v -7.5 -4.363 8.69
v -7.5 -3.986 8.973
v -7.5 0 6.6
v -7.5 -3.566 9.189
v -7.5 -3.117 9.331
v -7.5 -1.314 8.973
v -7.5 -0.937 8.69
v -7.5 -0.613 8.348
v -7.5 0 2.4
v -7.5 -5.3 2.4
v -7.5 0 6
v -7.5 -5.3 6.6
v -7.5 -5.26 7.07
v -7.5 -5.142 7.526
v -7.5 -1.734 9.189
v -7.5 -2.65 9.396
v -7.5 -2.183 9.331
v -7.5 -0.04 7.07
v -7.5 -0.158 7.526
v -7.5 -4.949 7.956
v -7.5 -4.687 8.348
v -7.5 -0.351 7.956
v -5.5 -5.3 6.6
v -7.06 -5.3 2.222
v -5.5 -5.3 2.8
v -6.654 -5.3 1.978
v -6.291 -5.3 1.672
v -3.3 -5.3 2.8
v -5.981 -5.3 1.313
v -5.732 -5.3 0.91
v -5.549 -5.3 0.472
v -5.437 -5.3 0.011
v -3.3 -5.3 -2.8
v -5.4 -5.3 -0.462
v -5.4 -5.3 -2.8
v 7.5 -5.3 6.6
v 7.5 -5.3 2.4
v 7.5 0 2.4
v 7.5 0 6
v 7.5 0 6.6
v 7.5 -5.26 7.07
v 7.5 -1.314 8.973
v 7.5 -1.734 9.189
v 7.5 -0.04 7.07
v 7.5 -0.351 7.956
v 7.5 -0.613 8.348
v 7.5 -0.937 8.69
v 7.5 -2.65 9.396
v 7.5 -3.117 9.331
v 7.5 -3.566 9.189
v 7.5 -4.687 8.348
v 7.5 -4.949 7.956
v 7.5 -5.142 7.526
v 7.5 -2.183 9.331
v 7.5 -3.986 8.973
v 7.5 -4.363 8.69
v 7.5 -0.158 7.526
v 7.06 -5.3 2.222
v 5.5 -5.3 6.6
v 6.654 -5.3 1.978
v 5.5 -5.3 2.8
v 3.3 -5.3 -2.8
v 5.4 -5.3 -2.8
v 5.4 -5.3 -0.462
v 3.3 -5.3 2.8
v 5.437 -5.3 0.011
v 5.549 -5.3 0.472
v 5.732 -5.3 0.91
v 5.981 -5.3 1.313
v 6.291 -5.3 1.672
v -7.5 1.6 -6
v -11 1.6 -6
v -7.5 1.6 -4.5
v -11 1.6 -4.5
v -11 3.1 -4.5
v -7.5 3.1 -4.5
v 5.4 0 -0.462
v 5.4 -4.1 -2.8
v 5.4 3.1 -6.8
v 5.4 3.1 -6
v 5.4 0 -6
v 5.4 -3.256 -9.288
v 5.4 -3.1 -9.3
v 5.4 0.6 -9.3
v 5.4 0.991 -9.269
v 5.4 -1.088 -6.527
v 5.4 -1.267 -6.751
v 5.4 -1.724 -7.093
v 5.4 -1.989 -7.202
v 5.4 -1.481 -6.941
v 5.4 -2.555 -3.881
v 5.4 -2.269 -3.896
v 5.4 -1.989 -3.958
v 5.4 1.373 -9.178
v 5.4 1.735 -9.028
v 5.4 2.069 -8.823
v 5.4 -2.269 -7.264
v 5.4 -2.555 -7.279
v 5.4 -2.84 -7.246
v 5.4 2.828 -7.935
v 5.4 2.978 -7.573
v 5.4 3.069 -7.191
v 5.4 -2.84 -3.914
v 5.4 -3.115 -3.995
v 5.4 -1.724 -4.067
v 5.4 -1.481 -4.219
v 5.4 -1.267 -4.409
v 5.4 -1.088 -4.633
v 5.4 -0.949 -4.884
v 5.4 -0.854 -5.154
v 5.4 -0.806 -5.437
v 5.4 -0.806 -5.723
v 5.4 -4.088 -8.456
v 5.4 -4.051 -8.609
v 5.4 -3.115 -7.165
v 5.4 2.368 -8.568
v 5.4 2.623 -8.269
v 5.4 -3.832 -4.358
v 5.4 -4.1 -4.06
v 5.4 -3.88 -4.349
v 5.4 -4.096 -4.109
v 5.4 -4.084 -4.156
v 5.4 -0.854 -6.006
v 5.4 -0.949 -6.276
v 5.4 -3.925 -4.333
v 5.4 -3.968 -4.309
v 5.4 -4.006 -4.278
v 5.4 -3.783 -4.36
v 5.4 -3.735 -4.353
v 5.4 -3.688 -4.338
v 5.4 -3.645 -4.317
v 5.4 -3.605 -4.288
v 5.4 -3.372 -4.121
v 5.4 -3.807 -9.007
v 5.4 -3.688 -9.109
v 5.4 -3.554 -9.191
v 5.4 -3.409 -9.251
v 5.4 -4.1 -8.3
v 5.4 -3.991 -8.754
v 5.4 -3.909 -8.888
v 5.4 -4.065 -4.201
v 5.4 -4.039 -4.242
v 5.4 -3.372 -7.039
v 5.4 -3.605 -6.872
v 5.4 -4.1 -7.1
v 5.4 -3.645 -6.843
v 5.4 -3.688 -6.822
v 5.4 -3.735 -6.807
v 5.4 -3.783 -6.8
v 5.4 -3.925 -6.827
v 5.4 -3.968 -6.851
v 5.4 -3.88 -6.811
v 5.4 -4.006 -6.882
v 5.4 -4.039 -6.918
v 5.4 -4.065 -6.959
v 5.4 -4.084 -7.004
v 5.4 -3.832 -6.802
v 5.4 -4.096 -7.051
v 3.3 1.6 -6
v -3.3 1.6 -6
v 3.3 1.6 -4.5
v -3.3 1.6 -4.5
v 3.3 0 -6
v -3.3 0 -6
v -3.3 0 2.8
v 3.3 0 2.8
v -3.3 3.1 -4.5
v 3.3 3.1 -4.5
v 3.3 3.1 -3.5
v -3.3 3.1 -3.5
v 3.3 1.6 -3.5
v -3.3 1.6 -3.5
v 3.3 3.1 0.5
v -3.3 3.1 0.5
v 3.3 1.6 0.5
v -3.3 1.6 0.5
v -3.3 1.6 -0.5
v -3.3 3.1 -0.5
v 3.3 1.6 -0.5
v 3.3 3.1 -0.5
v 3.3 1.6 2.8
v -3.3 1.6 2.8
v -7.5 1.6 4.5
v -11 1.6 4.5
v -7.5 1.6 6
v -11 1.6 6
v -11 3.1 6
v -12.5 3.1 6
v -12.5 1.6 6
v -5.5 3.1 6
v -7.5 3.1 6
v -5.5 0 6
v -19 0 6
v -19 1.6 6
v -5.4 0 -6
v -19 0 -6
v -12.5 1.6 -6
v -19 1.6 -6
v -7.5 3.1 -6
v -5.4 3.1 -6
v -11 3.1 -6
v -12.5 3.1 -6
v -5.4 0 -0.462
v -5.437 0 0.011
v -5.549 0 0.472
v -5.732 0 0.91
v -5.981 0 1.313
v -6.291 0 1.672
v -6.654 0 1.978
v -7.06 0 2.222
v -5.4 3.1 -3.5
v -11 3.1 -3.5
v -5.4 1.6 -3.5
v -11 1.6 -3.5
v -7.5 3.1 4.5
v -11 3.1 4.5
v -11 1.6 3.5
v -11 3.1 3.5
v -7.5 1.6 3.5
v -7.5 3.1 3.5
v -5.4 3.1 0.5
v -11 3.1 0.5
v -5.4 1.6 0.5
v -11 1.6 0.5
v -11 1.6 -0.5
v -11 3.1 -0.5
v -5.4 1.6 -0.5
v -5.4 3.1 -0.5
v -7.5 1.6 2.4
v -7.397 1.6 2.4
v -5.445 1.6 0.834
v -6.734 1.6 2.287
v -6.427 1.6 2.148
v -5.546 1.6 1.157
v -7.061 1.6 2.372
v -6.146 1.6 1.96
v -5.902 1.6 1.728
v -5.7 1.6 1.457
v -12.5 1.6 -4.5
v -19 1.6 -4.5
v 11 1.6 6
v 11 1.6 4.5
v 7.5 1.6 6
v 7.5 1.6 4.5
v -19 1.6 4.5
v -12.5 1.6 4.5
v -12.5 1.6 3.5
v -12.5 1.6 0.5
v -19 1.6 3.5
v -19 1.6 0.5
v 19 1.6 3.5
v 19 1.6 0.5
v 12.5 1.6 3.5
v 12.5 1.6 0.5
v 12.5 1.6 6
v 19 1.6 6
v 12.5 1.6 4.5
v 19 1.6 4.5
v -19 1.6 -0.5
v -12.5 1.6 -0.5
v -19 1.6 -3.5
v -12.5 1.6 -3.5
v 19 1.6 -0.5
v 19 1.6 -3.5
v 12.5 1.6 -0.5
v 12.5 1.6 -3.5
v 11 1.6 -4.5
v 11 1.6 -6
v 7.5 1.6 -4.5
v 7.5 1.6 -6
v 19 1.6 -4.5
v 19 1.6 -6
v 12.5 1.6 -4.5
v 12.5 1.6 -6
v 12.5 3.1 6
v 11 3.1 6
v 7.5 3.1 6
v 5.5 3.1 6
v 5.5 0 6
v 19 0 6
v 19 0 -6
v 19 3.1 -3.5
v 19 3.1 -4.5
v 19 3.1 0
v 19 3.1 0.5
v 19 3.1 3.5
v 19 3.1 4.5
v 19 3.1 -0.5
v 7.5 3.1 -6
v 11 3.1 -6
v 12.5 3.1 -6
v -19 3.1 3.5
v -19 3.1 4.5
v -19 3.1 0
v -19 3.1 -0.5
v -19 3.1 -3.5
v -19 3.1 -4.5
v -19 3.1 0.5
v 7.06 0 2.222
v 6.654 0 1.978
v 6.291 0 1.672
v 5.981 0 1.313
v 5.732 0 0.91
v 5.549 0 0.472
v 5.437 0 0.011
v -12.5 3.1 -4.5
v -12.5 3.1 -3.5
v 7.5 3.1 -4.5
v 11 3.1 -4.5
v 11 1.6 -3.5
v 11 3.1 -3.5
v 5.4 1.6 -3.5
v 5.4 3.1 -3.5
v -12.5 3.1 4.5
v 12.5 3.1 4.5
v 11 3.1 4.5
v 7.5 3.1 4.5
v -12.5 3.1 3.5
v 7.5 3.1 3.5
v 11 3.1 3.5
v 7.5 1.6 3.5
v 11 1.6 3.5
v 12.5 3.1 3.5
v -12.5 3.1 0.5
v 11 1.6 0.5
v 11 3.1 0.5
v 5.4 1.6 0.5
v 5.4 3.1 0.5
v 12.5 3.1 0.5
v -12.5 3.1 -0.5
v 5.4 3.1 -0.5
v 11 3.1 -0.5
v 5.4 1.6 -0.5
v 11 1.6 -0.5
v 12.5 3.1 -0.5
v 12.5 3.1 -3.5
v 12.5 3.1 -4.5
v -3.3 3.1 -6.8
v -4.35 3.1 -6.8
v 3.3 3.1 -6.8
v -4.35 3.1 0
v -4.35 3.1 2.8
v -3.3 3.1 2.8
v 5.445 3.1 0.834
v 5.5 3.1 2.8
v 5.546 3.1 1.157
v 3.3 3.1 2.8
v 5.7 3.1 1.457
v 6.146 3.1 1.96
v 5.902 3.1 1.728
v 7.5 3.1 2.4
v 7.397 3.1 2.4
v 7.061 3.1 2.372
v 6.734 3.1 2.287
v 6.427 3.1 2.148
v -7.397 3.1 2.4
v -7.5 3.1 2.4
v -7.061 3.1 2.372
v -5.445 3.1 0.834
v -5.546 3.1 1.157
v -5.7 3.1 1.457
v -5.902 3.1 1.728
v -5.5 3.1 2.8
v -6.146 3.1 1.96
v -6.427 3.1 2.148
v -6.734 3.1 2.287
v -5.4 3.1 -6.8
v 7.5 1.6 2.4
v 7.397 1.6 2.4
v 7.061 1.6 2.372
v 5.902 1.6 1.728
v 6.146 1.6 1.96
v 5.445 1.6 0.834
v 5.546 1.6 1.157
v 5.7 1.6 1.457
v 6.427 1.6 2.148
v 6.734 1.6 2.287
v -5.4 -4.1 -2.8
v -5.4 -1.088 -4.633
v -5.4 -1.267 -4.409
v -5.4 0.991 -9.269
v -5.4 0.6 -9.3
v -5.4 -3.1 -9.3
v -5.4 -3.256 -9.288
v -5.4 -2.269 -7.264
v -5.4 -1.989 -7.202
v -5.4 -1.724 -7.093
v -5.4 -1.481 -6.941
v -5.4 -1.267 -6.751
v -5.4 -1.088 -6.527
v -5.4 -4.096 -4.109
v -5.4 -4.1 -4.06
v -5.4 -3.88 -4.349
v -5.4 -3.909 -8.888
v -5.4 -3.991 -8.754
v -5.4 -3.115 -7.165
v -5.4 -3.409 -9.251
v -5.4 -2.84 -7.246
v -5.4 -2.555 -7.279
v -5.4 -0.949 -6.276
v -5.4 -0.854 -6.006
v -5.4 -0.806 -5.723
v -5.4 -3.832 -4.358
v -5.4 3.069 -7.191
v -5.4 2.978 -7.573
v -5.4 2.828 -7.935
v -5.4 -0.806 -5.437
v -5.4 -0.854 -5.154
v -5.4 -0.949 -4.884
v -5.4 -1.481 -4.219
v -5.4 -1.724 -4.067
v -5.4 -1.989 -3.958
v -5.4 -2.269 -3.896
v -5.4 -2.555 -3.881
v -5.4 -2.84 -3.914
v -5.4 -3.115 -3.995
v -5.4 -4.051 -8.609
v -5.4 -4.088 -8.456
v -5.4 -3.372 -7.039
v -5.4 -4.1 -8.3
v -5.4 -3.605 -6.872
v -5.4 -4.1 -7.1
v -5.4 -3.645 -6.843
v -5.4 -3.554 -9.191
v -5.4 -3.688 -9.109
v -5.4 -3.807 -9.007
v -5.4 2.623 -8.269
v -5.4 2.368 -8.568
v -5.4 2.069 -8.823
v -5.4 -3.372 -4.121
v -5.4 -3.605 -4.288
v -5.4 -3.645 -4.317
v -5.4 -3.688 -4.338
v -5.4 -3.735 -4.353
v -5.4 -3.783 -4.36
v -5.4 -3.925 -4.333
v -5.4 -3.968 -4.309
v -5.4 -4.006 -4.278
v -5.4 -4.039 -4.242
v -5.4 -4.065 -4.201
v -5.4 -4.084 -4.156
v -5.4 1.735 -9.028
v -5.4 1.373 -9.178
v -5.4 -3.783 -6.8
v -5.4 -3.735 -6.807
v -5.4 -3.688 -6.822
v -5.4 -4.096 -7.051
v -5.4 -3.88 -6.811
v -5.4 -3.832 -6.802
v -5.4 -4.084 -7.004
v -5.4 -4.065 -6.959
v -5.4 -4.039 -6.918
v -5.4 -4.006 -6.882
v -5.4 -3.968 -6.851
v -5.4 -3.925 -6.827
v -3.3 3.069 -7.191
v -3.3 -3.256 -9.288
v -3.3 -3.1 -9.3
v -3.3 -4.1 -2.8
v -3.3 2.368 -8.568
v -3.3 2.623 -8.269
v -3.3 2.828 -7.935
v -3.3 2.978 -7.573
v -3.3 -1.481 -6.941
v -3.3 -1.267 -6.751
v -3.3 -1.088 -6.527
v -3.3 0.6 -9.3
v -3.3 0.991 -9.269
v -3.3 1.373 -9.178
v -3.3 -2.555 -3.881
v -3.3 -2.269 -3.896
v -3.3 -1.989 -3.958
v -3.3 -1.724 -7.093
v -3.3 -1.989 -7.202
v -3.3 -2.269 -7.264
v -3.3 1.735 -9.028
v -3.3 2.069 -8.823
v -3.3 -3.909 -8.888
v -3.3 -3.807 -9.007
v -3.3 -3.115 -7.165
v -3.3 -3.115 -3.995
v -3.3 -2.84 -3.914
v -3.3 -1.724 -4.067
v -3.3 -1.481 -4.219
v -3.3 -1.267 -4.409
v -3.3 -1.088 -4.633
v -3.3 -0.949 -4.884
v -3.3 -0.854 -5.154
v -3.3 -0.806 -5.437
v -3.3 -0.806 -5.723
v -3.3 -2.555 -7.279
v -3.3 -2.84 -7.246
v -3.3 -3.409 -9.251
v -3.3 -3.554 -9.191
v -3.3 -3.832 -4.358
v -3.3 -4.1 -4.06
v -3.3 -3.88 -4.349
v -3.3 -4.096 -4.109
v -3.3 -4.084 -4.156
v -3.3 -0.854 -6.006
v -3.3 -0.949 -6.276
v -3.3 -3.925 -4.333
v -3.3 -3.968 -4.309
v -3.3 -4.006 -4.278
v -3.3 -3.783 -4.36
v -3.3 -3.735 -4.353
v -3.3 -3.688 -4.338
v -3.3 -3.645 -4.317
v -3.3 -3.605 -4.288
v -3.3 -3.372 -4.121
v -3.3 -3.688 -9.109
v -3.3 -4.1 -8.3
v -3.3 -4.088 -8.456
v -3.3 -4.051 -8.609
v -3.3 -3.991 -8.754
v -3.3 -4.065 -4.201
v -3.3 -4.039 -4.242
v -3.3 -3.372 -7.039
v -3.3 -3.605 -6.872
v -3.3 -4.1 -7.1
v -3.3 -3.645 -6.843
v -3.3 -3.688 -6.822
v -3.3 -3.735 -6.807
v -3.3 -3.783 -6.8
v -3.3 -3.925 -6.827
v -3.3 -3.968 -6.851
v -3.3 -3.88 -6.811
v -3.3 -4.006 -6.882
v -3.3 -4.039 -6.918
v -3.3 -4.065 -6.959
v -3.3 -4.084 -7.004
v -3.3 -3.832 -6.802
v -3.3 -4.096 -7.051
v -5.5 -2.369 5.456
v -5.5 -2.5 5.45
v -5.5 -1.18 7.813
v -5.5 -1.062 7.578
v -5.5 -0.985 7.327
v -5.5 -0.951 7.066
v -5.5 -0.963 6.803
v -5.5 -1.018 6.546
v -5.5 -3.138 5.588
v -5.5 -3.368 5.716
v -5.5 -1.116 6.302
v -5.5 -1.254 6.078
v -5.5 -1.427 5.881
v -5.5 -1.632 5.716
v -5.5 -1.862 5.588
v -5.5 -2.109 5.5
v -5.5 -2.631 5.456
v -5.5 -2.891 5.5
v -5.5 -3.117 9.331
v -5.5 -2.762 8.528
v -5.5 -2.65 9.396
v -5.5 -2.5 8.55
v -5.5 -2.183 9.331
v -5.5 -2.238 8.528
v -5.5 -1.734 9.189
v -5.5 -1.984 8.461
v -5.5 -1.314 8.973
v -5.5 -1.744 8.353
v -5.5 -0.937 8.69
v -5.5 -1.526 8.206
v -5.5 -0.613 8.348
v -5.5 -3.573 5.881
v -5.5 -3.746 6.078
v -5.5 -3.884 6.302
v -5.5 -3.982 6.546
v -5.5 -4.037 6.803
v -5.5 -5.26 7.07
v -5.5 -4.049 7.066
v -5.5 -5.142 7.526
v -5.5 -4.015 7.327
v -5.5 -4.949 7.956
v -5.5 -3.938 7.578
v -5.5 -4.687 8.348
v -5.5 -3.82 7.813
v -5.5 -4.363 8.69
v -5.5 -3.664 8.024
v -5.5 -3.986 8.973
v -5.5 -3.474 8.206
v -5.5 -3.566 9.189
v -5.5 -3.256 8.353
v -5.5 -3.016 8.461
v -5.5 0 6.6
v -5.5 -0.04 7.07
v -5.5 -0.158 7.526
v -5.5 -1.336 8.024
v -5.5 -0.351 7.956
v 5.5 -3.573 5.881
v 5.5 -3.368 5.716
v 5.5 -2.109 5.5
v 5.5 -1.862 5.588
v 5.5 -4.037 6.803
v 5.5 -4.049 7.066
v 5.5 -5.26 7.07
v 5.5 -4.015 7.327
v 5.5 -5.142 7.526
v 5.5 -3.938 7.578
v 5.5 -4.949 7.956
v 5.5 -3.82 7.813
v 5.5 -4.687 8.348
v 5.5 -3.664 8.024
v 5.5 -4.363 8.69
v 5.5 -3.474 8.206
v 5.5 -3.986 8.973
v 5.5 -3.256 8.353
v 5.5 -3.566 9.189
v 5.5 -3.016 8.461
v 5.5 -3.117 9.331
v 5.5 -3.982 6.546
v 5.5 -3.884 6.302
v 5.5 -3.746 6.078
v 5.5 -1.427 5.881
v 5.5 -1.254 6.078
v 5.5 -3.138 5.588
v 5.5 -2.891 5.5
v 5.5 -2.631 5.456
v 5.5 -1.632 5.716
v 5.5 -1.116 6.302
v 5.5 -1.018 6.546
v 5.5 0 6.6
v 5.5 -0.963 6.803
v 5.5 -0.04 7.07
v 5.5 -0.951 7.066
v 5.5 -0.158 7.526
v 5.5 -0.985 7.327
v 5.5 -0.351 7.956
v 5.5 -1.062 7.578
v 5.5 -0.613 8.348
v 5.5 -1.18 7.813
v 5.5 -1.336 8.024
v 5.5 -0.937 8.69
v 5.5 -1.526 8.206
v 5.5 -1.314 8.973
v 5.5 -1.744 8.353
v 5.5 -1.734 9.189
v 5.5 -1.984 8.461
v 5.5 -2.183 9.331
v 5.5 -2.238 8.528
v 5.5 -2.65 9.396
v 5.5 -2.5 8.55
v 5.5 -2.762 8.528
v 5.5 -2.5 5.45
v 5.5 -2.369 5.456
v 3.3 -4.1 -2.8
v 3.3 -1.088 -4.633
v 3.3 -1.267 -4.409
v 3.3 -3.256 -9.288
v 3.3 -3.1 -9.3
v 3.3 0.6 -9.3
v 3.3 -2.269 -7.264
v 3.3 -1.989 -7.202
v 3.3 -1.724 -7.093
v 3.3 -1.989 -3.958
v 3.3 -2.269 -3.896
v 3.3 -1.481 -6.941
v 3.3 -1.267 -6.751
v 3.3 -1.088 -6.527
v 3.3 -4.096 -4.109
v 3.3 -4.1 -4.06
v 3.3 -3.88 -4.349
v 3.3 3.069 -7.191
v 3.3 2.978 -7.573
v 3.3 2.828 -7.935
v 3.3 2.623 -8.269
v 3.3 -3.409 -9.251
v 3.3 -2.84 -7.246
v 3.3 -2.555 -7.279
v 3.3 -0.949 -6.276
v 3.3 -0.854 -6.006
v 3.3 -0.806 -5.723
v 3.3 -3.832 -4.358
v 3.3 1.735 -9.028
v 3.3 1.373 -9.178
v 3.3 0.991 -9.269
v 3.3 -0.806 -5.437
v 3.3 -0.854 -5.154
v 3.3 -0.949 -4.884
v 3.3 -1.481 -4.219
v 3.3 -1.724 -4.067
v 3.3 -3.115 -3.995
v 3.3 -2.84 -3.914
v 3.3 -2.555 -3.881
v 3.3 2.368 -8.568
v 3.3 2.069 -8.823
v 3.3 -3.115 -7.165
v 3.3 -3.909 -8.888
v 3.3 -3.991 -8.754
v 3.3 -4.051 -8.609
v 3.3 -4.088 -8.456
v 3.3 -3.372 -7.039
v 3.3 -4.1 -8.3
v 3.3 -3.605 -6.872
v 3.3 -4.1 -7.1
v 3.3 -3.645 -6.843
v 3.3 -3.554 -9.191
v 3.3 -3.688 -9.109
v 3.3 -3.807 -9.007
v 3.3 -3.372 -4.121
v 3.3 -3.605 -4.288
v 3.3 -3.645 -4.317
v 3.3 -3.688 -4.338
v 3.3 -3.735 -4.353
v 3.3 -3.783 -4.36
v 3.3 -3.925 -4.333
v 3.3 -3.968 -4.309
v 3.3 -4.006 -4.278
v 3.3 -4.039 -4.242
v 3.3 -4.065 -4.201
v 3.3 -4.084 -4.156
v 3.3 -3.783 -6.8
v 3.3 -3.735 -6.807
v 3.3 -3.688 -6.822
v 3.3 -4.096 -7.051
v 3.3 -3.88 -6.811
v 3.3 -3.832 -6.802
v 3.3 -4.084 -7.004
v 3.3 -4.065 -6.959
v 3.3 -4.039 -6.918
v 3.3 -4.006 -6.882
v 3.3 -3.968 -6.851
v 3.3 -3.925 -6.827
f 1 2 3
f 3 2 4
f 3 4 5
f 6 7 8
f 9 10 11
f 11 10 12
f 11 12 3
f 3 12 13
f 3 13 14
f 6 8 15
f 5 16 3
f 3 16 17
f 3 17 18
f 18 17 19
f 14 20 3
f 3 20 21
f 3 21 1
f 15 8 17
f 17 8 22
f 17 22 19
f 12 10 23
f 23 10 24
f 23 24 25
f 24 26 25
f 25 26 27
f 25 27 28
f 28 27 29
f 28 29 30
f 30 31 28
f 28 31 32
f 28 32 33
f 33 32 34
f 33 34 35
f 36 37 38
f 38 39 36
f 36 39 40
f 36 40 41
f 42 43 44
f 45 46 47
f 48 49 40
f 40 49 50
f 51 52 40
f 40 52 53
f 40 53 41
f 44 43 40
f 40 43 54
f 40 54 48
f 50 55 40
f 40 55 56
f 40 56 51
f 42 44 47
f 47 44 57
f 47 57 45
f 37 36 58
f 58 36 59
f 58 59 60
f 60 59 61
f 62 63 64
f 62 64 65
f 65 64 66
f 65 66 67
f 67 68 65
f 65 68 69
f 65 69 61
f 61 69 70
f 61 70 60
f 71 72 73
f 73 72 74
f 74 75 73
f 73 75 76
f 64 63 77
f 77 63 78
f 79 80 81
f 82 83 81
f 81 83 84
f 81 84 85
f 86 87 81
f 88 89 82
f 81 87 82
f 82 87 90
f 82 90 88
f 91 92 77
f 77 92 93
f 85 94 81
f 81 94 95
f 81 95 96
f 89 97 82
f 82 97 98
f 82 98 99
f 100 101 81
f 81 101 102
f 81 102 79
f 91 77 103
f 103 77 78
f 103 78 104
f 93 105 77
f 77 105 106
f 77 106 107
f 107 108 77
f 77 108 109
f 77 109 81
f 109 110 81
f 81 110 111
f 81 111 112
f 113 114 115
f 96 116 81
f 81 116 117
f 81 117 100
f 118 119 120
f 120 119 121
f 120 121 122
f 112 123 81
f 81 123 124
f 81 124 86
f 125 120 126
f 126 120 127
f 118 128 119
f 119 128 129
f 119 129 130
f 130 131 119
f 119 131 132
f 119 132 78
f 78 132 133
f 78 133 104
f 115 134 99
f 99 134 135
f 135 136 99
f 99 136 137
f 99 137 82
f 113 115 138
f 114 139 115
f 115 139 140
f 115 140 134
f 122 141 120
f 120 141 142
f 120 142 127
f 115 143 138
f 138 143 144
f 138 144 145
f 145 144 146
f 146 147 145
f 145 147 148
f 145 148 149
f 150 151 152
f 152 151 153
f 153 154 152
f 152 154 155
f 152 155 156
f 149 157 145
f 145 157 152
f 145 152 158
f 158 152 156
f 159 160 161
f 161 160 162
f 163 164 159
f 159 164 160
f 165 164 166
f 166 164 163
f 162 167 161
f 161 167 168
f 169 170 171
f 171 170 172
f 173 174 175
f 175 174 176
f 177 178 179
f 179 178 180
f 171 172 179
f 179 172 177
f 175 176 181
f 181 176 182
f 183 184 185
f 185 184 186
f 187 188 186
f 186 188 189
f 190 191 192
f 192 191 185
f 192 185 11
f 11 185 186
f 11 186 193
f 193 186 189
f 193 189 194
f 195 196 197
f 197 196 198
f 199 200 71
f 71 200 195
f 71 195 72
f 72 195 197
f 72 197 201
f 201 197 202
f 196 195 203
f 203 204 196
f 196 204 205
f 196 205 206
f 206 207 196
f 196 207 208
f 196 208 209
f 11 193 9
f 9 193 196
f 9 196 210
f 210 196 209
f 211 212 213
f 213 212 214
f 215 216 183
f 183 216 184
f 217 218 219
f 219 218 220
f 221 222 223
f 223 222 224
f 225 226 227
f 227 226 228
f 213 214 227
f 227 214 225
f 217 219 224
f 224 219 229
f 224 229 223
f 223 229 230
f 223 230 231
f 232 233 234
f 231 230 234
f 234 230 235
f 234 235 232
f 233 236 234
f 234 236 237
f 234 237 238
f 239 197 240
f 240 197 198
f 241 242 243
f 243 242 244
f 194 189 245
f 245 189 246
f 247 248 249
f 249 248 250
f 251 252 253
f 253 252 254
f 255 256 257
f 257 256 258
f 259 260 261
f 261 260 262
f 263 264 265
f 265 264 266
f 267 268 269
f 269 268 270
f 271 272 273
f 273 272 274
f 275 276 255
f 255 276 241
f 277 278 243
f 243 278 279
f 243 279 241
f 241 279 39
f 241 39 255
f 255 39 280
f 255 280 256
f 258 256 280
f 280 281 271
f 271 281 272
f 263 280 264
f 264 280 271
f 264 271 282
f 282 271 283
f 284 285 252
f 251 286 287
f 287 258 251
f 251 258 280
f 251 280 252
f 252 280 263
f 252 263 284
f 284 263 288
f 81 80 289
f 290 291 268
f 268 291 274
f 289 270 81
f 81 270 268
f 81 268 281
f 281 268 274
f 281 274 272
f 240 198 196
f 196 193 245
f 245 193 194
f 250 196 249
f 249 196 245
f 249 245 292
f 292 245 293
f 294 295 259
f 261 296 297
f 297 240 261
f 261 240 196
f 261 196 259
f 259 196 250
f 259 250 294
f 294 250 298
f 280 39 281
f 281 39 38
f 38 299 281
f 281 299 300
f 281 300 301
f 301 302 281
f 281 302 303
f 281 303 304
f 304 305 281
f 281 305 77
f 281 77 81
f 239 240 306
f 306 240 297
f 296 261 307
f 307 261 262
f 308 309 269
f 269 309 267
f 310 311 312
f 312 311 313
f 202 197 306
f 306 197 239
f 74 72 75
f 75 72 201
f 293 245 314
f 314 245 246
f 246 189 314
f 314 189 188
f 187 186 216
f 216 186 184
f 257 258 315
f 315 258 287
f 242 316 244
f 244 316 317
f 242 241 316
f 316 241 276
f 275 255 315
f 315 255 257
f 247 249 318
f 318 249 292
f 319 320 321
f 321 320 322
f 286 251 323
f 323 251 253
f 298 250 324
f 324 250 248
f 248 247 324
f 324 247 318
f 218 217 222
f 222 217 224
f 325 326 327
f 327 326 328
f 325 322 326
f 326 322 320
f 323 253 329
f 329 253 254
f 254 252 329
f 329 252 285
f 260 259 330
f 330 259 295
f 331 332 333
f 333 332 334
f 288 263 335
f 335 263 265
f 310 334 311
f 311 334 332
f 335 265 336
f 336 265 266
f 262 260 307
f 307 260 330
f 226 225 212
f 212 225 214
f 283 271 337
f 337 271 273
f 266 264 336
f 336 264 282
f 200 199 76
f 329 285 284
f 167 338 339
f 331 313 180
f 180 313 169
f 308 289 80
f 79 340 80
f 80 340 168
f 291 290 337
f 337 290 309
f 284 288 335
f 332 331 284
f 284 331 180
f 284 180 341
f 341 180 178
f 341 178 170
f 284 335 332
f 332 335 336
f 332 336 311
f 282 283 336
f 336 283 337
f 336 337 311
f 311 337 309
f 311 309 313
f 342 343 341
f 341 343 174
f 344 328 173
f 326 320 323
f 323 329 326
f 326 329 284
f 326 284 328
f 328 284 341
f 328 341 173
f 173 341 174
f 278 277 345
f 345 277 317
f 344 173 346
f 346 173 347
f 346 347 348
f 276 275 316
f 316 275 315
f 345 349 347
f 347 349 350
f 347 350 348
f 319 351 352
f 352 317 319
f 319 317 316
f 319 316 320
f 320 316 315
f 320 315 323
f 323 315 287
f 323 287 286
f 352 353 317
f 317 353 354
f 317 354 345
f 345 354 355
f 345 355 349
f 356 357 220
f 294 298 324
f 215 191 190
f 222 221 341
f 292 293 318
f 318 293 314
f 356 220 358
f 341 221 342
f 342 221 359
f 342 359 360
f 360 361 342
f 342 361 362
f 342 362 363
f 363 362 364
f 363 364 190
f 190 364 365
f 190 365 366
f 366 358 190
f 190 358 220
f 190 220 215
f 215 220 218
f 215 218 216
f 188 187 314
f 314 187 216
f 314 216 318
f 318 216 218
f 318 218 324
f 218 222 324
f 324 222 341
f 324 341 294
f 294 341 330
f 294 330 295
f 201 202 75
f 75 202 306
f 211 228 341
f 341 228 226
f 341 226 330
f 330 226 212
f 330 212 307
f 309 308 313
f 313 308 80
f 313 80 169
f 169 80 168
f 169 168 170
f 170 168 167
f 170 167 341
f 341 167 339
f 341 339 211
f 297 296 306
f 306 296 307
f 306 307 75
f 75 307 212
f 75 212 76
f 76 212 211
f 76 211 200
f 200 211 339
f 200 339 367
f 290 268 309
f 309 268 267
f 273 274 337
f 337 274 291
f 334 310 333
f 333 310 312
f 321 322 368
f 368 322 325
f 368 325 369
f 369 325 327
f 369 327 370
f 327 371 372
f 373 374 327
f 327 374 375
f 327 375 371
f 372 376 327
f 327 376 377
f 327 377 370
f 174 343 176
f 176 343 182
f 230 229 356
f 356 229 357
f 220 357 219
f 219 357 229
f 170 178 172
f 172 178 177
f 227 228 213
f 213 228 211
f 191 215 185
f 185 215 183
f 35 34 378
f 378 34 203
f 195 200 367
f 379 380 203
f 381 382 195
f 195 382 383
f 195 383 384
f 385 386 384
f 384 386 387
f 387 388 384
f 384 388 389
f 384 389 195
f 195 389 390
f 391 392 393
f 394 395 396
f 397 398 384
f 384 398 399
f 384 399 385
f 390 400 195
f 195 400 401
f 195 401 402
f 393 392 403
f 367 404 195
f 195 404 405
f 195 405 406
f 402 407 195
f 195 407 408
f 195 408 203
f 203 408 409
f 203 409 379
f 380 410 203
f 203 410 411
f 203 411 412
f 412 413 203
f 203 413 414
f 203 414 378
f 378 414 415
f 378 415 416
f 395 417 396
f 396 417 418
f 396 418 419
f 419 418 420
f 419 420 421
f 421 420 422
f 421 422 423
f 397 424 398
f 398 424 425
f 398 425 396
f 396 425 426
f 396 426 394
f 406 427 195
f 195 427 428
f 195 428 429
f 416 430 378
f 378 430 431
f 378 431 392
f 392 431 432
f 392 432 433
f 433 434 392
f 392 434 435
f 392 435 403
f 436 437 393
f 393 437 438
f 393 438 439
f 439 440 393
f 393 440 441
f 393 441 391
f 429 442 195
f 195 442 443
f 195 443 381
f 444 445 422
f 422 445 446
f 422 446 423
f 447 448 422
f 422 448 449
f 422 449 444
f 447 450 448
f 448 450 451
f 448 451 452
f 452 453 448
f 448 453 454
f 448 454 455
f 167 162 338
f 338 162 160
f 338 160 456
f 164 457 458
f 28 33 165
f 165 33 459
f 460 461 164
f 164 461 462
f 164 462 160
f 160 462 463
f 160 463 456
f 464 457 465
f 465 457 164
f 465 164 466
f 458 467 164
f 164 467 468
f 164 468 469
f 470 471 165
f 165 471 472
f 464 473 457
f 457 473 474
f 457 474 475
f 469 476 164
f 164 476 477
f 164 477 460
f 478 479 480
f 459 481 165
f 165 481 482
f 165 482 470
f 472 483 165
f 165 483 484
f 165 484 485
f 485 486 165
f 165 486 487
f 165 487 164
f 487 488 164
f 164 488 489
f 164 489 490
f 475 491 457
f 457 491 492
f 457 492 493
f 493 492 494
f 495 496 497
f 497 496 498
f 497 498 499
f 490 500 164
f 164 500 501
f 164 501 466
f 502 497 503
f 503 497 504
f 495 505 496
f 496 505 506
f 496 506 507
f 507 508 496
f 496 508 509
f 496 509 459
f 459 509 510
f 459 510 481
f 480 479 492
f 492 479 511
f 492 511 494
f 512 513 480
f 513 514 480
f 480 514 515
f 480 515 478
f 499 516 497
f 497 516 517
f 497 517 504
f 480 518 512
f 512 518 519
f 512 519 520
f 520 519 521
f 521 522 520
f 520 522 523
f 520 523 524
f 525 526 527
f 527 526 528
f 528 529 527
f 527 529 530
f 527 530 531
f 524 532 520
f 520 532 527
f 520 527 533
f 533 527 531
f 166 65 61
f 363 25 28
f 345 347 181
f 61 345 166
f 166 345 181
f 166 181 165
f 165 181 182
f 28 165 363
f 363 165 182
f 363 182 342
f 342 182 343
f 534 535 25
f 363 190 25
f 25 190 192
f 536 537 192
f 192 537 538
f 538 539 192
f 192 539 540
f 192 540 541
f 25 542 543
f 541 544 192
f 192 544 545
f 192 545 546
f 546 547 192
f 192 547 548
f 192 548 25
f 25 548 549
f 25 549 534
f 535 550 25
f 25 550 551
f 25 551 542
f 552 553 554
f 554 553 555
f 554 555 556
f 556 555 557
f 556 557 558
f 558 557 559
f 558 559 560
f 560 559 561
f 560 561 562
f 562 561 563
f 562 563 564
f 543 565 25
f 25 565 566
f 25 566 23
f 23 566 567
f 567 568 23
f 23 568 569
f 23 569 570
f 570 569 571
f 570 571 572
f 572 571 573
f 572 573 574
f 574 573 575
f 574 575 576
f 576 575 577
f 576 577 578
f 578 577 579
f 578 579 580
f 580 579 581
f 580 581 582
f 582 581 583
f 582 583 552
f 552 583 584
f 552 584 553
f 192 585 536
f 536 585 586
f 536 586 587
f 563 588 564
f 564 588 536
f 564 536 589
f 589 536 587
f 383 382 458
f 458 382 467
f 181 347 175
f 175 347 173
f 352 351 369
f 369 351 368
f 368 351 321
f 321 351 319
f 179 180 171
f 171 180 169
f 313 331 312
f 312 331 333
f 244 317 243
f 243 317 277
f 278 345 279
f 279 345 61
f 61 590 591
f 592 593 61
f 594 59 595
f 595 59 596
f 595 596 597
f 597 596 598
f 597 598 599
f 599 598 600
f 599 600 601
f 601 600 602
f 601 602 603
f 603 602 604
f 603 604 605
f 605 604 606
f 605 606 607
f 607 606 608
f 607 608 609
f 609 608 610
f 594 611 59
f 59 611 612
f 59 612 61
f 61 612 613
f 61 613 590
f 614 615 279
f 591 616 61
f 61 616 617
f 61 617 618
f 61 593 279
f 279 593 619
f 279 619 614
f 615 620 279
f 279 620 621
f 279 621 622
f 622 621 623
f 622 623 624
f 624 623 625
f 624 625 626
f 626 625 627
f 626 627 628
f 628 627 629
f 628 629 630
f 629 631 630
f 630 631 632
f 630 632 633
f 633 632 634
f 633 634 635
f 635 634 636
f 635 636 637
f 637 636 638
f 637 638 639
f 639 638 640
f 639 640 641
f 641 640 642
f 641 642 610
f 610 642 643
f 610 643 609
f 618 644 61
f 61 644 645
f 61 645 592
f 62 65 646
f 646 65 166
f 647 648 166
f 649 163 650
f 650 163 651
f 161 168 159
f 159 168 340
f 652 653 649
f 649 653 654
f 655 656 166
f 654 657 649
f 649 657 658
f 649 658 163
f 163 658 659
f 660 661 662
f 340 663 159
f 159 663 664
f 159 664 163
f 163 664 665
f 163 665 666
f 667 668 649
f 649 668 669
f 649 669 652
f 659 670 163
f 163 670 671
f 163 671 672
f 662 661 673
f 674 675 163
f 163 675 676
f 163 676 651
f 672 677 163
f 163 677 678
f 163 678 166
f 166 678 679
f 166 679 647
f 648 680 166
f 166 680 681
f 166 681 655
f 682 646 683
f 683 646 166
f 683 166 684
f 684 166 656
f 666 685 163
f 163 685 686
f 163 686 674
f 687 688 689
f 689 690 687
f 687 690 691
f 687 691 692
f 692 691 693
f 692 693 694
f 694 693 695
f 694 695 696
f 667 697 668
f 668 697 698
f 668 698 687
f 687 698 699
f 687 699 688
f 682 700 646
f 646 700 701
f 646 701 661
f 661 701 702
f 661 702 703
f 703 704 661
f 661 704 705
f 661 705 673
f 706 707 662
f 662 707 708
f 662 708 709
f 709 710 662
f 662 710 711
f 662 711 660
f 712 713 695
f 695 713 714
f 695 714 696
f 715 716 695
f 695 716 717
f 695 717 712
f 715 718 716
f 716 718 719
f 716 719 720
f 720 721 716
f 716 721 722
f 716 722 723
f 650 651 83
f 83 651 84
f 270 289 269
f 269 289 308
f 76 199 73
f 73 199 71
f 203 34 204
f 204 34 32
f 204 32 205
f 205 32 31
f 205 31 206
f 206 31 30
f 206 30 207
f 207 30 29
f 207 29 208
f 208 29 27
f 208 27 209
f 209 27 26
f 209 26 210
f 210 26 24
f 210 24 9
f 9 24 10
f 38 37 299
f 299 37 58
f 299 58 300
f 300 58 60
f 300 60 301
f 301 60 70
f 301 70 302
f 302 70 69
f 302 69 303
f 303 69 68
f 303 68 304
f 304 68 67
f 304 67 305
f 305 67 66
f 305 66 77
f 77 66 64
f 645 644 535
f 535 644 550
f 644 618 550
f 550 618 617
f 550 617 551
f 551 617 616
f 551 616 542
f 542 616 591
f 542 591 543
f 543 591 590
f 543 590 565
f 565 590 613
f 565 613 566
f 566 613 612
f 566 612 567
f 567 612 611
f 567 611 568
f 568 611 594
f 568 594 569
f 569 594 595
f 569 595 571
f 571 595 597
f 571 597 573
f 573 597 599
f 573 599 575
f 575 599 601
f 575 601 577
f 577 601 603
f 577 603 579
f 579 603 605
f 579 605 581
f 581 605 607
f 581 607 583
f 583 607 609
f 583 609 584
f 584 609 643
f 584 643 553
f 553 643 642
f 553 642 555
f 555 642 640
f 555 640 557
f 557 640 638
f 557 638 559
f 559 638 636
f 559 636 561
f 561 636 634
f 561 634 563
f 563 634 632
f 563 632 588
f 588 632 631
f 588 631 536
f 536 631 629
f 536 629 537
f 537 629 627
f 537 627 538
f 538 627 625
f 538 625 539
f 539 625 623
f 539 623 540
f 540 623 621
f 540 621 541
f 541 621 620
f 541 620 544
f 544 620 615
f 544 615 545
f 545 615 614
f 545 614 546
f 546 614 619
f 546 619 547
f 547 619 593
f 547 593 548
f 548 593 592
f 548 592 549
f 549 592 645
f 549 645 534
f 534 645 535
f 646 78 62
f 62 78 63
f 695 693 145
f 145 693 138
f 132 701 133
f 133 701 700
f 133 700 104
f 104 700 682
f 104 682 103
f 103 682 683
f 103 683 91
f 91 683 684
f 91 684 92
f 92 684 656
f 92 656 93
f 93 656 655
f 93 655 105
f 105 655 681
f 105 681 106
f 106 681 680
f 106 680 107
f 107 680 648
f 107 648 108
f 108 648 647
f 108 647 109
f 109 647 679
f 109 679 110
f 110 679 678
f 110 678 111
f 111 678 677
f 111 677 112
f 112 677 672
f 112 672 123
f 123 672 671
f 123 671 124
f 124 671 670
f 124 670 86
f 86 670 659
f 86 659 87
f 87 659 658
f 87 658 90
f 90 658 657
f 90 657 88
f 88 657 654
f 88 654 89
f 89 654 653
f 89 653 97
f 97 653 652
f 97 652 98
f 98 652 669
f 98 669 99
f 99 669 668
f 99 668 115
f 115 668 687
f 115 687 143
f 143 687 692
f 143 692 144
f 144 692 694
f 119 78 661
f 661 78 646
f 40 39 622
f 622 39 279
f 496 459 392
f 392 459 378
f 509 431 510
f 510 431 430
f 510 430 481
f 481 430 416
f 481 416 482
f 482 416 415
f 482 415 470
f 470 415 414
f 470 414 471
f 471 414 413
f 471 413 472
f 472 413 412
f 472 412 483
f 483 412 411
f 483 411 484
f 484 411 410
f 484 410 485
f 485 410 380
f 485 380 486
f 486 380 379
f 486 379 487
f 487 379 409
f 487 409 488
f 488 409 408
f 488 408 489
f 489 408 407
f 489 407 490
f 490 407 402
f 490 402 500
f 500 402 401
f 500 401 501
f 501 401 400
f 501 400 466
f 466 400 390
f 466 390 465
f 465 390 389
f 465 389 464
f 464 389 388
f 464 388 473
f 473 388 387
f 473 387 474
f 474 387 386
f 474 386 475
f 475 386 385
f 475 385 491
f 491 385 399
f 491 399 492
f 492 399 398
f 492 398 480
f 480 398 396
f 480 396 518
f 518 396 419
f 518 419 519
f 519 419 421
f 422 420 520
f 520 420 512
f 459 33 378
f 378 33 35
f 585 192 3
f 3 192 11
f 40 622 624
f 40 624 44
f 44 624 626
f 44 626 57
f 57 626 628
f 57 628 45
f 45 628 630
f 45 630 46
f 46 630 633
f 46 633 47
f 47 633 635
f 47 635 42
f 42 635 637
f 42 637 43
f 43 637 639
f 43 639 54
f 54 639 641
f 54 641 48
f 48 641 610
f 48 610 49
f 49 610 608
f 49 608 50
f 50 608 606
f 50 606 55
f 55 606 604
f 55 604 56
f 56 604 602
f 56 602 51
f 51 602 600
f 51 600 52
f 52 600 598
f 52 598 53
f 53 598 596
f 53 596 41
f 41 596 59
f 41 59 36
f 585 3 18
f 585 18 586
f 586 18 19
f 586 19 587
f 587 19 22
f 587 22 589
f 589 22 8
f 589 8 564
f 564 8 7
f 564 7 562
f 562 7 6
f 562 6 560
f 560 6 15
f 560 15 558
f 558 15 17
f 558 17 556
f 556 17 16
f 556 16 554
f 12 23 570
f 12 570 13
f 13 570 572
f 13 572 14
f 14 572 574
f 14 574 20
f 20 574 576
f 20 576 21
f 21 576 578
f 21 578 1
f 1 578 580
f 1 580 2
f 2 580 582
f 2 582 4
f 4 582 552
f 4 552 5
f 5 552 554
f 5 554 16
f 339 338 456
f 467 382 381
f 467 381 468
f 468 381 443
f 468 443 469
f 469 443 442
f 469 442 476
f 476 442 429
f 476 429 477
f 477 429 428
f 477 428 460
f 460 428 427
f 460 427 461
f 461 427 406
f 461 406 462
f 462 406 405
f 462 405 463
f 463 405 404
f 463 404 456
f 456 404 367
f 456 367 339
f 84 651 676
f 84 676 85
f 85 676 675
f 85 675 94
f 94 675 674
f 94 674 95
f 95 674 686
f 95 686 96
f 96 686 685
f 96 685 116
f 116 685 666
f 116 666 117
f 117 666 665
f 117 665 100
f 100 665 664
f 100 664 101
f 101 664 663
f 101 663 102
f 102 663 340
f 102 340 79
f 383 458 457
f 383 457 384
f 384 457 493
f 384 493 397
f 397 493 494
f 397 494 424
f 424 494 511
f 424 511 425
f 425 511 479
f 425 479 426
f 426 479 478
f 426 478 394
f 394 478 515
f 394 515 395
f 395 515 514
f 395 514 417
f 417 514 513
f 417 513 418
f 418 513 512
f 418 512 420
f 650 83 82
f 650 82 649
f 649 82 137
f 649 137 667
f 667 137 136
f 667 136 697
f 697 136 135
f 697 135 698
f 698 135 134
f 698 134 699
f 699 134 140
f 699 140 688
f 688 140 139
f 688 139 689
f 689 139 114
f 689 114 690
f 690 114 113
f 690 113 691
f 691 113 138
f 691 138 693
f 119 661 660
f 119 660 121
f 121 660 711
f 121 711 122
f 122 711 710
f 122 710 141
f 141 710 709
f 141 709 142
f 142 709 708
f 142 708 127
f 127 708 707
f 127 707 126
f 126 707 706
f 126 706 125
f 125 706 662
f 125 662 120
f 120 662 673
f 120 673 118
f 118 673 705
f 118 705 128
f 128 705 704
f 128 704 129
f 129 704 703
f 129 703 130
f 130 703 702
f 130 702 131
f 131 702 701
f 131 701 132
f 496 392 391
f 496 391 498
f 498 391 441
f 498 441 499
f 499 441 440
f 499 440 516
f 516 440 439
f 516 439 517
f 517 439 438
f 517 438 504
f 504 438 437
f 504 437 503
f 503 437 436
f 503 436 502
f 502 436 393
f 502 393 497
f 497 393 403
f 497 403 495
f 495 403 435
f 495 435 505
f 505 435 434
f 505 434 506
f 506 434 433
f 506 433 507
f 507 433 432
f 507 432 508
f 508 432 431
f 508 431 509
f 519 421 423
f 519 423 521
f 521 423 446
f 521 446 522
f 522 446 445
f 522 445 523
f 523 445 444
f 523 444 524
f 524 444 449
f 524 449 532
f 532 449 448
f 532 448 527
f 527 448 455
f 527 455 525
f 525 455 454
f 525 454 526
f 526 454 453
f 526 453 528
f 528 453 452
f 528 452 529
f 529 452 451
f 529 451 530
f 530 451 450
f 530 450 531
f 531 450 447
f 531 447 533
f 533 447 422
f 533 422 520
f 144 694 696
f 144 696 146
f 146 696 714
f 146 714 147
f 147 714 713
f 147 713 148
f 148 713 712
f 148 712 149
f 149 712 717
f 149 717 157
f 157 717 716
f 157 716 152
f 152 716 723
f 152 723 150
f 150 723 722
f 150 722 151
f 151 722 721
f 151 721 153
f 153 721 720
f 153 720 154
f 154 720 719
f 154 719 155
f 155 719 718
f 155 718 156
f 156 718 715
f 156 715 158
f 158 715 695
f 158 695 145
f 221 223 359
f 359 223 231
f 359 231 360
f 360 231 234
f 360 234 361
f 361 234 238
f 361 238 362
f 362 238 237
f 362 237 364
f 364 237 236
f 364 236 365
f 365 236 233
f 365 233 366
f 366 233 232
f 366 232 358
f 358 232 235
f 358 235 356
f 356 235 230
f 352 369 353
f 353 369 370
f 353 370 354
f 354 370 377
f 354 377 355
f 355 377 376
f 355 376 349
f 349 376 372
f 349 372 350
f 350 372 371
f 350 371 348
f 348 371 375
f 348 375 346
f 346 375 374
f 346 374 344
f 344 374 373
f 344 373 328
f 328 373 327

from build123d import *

# Parameters (mm, degrees)
SKETCH_1_W               = 38
SKETCH_1_H               = 12
EXTRUDE_1_DEPTH          = 1.6
EXTRUDE_START            = 1.6
SKETCH_1_3_W             = 38
SKETCH_1_3_H             = 1
SKETCH_1_3_W_2           = 1.5
SKETCH_1_3_H_2           = 12
EXTRUDE_2_DEPTH          = 1.5
EXTRUDE_START_2          = 3.1
EXTRUDE_3_DEPTH          = 8.4
SKETCH_2_4_W             = 2.1
SKETCH_2_4_H             = 1.5
EXTRUDE_5_DEPTH          = 3.1
CUT_EXTRUDE_1_DEPTH      = 22.850629282
FILLET_1_R               = 3
EXTRUDE_4_REACH          = 28.771
SKETCH_3_R               = 1.55
CUT_EXTRUDE_2_DEPTH      = 27.771253239
CUT_EXTRUDE_2_DEPTH_BACK = 27.771253239
SKETCH_3_3_R             = 1.7
SKETCH_3_3_W             = 6.5
SKETCH_3_3_H             = 1.2
SKETCH_3_3_W_2           = 3.4
SKETCH_3_3_H_2           = 3.1
FILLET_2_R               = 2.8
FILLET_3_R               = 2.5
FILLET_4_R               = 1
FILLET_5_R               = 0.3
FILLET_6_R               = 2


with BuildPart() as part:
    # 草图1 → 凸台-拉伸1 (new body)
    with BuildSketch(Plane(origin=(0, 0, 0), x_dir=(1, 0, 0), z_dir=(0, 1, 0))):
        Rectangle(SKETCH_1_W, SKETCH_1_H)
    extrude(amount=EXTRUDE_1_DEPTH)

    # 草图1<3> → 凸台-拉伸2 (add)
    with BuildSketch(Plane(origin=(0, 0, 0), x_dir=(1, 0, 0), z_dir=(0, 1, 0)).offset(EXTRUDE_START)):
        with Locations((0, 4)):
            Rectangle(SKETCH_1_3_W, SKETCH_1_3_H)
        Rectangle(SKETCH_1_3_W, SKETCH_1_3_H)
        with Locations((0, -4)):
            Rectangle(SKETCH_1_3_W, SKETCH_1_3_H)
        with Locations((-11.75, 0)):
            Rectangle(SKETCH_1_3_W_2, SKETCH_1_3_H_2)
        with Locations((11.75, 0)):
            Rectangle(SKETCH_1_3_W_2, SKETCH_1_3_H_2)
    extrude(amount=EXTRUDE_2_DEPTH)

    # 草图2 → 凸台-拉伸3 (add)
    with BuildSketch(Plane(origin=(0, 0, 0), x_dir=(1, 0, 0), z_dir=(0, 1, 0)).offset(EXTRUDE_START_2)):
        Polygon((-3.3, 9.3), (-5.4, 9.3), (-5.4, -2.4), (-7.5, -2.4), (-7.5, -9.4), (-5.5, -9.4), (-5.5, -2.8), (-3.3, -2.8), align=None)
        Polygon((5.4, 9.3), (3.3, 9.3), (3.3, -2.8), (5.5, -2.8), (5.5, -9.4), (7.5, -9.4), (7.5, -2.4), (5.4, -2.4), align=None)
    extrude(amount=-EXTRUDE_3_DEPTH)

    # 草图2<4> → 凸台-拉伸5 (add)
    with BuildSketch(Plane(origin=(0, 0, 0), x_dir=(1, 0, 0), z_dir=(0, 1, 0))):
        with Locations((-6.45, 5.25)):
            Rectangle(SKETCH_2_4_W, SKETCH_2_4_H)
        with Locations((6.45, 5.25)):
            Rectangle(SKETCH_2_4_W, SKETCH_2_4_H)
    extrude(amount=EXTRUDE_5_DEPTH)

    # 草图2<3> → 切除-拉伸1 (cut, through all)
    with BuildSketch(Plane(origin=(0, 0, 0), x_dir=(1, 0, 0), z_dir=(0, 1, 0))):
        Polygon((0, -9.4), (0, -2.8), (-3.3, -2.8), (-5.4, -2.8), (-5.5, -2.8), (-5.5, -9.4), align=None)
        Polygon((3.3, -2.8), (0, -2.8), (0, -9.4), (5.5, -9.4), (5.5, -2.8), (5.4, -2.8), align=None)
    extrude(amount=CUT_EXTRUDE_1_DEPTH, mode=Mode.SUBTRACT)

    # 圆角1
    # the kernel refuses this fillet: 3 mm, written as the material it adds along each edge
    with BuildSketch(Plane(origin=(5.4, 7.154544011, 2.4), x_dir=(1, 0, 0), z_dir=(0, -1, 0))) as fillet_1_piece_1_section:
        with BuildLine():
            CenterArc((3, -2.861817604), FILLET_1_R, 107.457603124, 72.542396876)
            Line((0, -2.861817604), (0, 0))
            Line((0, 0), (2.1, 0))
        make_face()
    fillet_1_piece_1 = extrude(amount=12.454544011, mode=Mode.PRIVATE)
    fillet_1_piece_1 = split(fillet_1_piece_1, bisect_by=Plane(origin=(6.297598678, 1.6, 1.686657362), z_dir=(0, -1, 0)), keep=Keep.TOP, mode=Mode.PRIVATE)
    add(fillet_1_piece_1)
    with BuildSketch(Plane(origin=(-5.4, 0, 2.4), x_dir=(0, 0, -1), z_dir=(0, -1, 0))) as fillet_1_piece_2:
        with BuildLine():
            CenterArc((2.861817604, -3), FILLET_1_R, 90, 72.542396876)
            Line((0, -2.1), (0, 0))
            Line((0, 0), (2.861817604, 0))
        make_face()
    extrude(amount=5.3)

    # 草图3 → 凸台-拉伸4 (add, up to next)
    with BuildSketch(Plane(origin=(-5.5, 0, 0), x_dir=(0, 0, -1), z_dir=(1, 0, 0)), mode=Mode.PRIVATE) as extrude_4_sk1:
        with Locations((-7, -2.5)):
            Circle(SKETCH_3_R)
    extrude_4_tool1 = extrude(extrude_4_sk1.sketch, amount=EXTRUDE_4_REACH, mode=Mode.PRIVATE) - part.part
    add(extrude_4_tool1.solids().sort_by_distance((-5.5, -2.5, 7))[0])

    # 草图3<3> → 切除-拉伸2 (cut, two sides: drawn at the far end of the back side and taken through both)
    with BuildSketch(Plane(origin=(-5.5, 0, 0), x_dir=(0, 0, -1), z_dir=(1, 0, 0)).offset(-CUT_EXTRUDE_2_DEPTH_BACK)):
        with Locations((5.58, -2.5)):
            Circle(SKETCH_3_3_R)
        with Locations((6.05, -4.7)):
            Rectangle(SKETCH_3_3_W, SKETCH_3_3_H)
        with Locations((-7.7, 1.55)):
            Rectangle(SKETCH_3_3_W_2, SKETCH_3_3_H_2)
    extrude(amount=CUT_EXTRUDE_2_DEPTH + CUT_EXTRUDE_2_DEPTH_BACK, mode=Mode.SUBTRACT)

    # 圆角2
    # the kernel refuses this fillet: 2.8 mm, written as the material it takes off along each edge
    with BuildSketch(Plane(origin=(-1.5, 0, 9.4), x_dir=(0, 0, -1), z_dir=(1, 0, 0)), Plane(origin=(-14.5, 0, 9.4), x_dir=(0, 0, -1), z_dir=(1, 0, 0))) as fillet_2_piece_1:
        with BuildLine():
            CenterArc((FILLET_2_R, -FILLET_2_R), FILLET_2_R, 90, 90)
            Line((0, -FILLET_2_R), (0, 0))
            Line((0, 0), (FILLET_2_R, 0))
        make_face()
    extrude(amount=16, mode=Mode.SUBTRACT)
    with BuildSketch(Plane(origin=(-1.5, -5.3, 9.4), x_dir=(0, 0, -1), z_dir=(1, 0, 0)), Plane(origin=(-14.5, -5.3, 9.4), x_dir=(0, 0, -1), z_dir=(1, 0, 0))) as fillet_2_piece_2:
        with BuildLine():
            CenterArc((FILLET_2_R, FILLET_2_R), FILLET_2_R, 180, 90)
            Line((0, FILLET_2_R), (0, 0))
            Line((0, 0), (FILLET_2_R, 0))
        make_face()
    extrude(amount=16, mode=Mode.SUBTRACT)

    # 圆角3
    fillet_3_edges = [part.edges().sort_by_distance(p)[0] for p in [
        (-4.35, 3.1, -9.3),
        (4.35, 3.1, -9.3),
    ]]
    fillet(fillet_3_edges, radius=FILLET_3_R)

    # 圆角4
    fillet_4_edges = [part.edges().sort_by_distance(p)[0] for p in [
        (-4.35, -4.1, -9.3),
        (4.35, -4.1, -9.3),
    ]]
    fillet(fillet_4_edges, radius=FILLET_4_R)

    # 圆角5
    fillet_5_edges = [part.edges().sort_by_distance(p)[0] for p in [
        (-4.35, -4.1, -5.005543735),
        (4.35, -4.1, -5.005543735),
        (-4.35, -4.1, -6.154456265),
        (4.35, -4.1, -6.154456265),
    ]]
    fillet(fillet_5_edges, radius=FILLET_5_R)

    # 圆角6
    # the kernel refuses this fillet: 2 mm, written as the material it adds along each edge
    with BuildSketch(Plane(origin=(5.4, 3.1, 2.4), x_dir=(0, 0, -1), z_dir=(0, -1, 0))) as fillet_6_piece_1:
        with BuildLine():
            CenterArc((2, 1.997498436), FILLET_6_R, 180, 87.134016017)
            Line((0, 1.997498436), (-0.04, 1.997498436))
            Line((-0.04, 1.997498436), (-0.04, 0))
            Line((-0.04, 0), (0, -0.04))
            ThreePointArc((0, -0.04), (0.95, -0.04), (1.898, -0.039949969))
            Line((1.898, -0.039949969), (1.9, 0))
        make_face()
    extrude(amount=6.493746089)
    with BuildSketch(Plane(origin=(-5.4, 3.1, 2.4), x_dir=(-1, 0, 0), z_dir=(0, -1, 0))) as fillet_6_piece_2:
        with BuildLine():
            CenterArc((1.997498436, 2), FILLET_6_R, 182.865983983, 87.134016017)
            Line((0, 1.9), (-0.039949969, 1.898))
            ThreePointArc((-0.039949969, 1.898), (-0.04, 0.95), (-0.04, 0))
            Line((-0.04, 0), (0, -0.04))
            Line((0, -0.04), (1.997498436, -0.04))
            Line((1.997498436, -0.04), (1.997498436, 0))
        make_face()
    extrude(amount=6.493746089)


solid = part.part
